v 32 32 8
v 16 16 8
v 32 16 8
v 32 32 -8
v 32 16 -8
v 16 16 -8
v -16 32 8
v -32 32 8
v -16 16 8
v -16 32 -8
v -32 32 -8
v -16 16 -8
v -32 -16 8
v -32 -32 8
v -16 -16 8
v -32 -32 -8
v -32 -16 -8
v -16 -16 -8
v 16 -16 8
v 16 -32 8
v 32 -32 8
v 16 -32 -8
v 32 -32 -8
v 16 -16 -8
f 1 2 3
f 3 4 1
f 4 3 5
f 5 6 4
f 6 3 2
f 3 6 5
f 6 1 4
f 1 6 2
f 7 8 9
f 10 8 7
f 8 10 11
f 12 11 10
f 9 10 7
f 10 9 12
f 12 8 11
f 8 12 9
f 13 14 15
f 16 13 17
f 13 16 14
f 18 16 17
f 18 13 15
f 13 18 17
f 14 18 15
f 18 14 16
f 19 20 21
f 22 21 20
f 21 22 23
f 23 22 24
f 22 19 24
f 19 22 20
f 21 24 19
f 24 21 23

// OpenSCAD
// file: def.scad
block_size_3 = 19;
block_size_4 = 16;
block_size_5 = 14;
block_size_6 = 12.5;
block_size_7 = 11;
block_size_8 = 10;

inf = 1000;

round_radius = 1;
sticker_margin = 2.5;
sticker_round_radius = 0.75;

module _block(size) {
    minkowski() {
        cube([size - round_radius * 2, size - round_radius * 2, size - round_radius * 2], center = true);
        sphere(r = round_radius, $fn = 24);
    }
}

module _selector_0(size) {
    cube([size - 0.2, size - 0.2, size - 0.2], center = true);
}

module _sticker(size) {
    minkowski() {
        cube([size - sticker_margin * 2, size - sticker_margin * 2, 0.1], center = true);
        cylinder(r = sticker_round_radius, h = 0.1, $fn = 24);
    }
}

module _selector_corner_cw(size) {
    difference() {
        cube([size, size, size], center = true);
        rotate([0, -45, 0])
            translate([-inf, -inf, 0])
                cube([inf * 2, inf * 2, inf]);
        rotate([90, 0, 45])
            translate([-inf, -inf, 0])
                cube([inf * 2, inf * 2, inf]);
    }
}

module _selector_corner_ccw(size) {
    difference() {
        cube([size, size, size], center = true);
        rotate([45, 0, 0])
            translate([-inf, -inf, 0])
                cube([inf * 2, inf * 2, inf]);
        rotate([0, -90, -45])
            translate([-inf, -inf, 0])
                cube([inf * 2, inf * 2, inf]);
    }
}

module _selector_edge_cw(size) {
    difference() {
        cube([size, size, size], center = true);
        rotate([90, 0, 45])
            translate([-inf, -inf, 0])
                cube([inf * 2, inf * 2, inf]);
    }
}

module _selector_edge_ccw(size) {
    difference() {
        cube([size, size, size], center = true);
        rotate([0, -90, -45])
            translate([-inf, -inf, 0])
                cube([inf * 2, inf * 2, inf]);
    }
}
// main file
include <def.scad>

for (deg = [0 : 90 : 270])
    rotate([0, 0, deg])
        translate([block_size_4 * 1.5, block_size_4 * 1.5, 0])
            _selector_edge_ccw(block_size_4);
